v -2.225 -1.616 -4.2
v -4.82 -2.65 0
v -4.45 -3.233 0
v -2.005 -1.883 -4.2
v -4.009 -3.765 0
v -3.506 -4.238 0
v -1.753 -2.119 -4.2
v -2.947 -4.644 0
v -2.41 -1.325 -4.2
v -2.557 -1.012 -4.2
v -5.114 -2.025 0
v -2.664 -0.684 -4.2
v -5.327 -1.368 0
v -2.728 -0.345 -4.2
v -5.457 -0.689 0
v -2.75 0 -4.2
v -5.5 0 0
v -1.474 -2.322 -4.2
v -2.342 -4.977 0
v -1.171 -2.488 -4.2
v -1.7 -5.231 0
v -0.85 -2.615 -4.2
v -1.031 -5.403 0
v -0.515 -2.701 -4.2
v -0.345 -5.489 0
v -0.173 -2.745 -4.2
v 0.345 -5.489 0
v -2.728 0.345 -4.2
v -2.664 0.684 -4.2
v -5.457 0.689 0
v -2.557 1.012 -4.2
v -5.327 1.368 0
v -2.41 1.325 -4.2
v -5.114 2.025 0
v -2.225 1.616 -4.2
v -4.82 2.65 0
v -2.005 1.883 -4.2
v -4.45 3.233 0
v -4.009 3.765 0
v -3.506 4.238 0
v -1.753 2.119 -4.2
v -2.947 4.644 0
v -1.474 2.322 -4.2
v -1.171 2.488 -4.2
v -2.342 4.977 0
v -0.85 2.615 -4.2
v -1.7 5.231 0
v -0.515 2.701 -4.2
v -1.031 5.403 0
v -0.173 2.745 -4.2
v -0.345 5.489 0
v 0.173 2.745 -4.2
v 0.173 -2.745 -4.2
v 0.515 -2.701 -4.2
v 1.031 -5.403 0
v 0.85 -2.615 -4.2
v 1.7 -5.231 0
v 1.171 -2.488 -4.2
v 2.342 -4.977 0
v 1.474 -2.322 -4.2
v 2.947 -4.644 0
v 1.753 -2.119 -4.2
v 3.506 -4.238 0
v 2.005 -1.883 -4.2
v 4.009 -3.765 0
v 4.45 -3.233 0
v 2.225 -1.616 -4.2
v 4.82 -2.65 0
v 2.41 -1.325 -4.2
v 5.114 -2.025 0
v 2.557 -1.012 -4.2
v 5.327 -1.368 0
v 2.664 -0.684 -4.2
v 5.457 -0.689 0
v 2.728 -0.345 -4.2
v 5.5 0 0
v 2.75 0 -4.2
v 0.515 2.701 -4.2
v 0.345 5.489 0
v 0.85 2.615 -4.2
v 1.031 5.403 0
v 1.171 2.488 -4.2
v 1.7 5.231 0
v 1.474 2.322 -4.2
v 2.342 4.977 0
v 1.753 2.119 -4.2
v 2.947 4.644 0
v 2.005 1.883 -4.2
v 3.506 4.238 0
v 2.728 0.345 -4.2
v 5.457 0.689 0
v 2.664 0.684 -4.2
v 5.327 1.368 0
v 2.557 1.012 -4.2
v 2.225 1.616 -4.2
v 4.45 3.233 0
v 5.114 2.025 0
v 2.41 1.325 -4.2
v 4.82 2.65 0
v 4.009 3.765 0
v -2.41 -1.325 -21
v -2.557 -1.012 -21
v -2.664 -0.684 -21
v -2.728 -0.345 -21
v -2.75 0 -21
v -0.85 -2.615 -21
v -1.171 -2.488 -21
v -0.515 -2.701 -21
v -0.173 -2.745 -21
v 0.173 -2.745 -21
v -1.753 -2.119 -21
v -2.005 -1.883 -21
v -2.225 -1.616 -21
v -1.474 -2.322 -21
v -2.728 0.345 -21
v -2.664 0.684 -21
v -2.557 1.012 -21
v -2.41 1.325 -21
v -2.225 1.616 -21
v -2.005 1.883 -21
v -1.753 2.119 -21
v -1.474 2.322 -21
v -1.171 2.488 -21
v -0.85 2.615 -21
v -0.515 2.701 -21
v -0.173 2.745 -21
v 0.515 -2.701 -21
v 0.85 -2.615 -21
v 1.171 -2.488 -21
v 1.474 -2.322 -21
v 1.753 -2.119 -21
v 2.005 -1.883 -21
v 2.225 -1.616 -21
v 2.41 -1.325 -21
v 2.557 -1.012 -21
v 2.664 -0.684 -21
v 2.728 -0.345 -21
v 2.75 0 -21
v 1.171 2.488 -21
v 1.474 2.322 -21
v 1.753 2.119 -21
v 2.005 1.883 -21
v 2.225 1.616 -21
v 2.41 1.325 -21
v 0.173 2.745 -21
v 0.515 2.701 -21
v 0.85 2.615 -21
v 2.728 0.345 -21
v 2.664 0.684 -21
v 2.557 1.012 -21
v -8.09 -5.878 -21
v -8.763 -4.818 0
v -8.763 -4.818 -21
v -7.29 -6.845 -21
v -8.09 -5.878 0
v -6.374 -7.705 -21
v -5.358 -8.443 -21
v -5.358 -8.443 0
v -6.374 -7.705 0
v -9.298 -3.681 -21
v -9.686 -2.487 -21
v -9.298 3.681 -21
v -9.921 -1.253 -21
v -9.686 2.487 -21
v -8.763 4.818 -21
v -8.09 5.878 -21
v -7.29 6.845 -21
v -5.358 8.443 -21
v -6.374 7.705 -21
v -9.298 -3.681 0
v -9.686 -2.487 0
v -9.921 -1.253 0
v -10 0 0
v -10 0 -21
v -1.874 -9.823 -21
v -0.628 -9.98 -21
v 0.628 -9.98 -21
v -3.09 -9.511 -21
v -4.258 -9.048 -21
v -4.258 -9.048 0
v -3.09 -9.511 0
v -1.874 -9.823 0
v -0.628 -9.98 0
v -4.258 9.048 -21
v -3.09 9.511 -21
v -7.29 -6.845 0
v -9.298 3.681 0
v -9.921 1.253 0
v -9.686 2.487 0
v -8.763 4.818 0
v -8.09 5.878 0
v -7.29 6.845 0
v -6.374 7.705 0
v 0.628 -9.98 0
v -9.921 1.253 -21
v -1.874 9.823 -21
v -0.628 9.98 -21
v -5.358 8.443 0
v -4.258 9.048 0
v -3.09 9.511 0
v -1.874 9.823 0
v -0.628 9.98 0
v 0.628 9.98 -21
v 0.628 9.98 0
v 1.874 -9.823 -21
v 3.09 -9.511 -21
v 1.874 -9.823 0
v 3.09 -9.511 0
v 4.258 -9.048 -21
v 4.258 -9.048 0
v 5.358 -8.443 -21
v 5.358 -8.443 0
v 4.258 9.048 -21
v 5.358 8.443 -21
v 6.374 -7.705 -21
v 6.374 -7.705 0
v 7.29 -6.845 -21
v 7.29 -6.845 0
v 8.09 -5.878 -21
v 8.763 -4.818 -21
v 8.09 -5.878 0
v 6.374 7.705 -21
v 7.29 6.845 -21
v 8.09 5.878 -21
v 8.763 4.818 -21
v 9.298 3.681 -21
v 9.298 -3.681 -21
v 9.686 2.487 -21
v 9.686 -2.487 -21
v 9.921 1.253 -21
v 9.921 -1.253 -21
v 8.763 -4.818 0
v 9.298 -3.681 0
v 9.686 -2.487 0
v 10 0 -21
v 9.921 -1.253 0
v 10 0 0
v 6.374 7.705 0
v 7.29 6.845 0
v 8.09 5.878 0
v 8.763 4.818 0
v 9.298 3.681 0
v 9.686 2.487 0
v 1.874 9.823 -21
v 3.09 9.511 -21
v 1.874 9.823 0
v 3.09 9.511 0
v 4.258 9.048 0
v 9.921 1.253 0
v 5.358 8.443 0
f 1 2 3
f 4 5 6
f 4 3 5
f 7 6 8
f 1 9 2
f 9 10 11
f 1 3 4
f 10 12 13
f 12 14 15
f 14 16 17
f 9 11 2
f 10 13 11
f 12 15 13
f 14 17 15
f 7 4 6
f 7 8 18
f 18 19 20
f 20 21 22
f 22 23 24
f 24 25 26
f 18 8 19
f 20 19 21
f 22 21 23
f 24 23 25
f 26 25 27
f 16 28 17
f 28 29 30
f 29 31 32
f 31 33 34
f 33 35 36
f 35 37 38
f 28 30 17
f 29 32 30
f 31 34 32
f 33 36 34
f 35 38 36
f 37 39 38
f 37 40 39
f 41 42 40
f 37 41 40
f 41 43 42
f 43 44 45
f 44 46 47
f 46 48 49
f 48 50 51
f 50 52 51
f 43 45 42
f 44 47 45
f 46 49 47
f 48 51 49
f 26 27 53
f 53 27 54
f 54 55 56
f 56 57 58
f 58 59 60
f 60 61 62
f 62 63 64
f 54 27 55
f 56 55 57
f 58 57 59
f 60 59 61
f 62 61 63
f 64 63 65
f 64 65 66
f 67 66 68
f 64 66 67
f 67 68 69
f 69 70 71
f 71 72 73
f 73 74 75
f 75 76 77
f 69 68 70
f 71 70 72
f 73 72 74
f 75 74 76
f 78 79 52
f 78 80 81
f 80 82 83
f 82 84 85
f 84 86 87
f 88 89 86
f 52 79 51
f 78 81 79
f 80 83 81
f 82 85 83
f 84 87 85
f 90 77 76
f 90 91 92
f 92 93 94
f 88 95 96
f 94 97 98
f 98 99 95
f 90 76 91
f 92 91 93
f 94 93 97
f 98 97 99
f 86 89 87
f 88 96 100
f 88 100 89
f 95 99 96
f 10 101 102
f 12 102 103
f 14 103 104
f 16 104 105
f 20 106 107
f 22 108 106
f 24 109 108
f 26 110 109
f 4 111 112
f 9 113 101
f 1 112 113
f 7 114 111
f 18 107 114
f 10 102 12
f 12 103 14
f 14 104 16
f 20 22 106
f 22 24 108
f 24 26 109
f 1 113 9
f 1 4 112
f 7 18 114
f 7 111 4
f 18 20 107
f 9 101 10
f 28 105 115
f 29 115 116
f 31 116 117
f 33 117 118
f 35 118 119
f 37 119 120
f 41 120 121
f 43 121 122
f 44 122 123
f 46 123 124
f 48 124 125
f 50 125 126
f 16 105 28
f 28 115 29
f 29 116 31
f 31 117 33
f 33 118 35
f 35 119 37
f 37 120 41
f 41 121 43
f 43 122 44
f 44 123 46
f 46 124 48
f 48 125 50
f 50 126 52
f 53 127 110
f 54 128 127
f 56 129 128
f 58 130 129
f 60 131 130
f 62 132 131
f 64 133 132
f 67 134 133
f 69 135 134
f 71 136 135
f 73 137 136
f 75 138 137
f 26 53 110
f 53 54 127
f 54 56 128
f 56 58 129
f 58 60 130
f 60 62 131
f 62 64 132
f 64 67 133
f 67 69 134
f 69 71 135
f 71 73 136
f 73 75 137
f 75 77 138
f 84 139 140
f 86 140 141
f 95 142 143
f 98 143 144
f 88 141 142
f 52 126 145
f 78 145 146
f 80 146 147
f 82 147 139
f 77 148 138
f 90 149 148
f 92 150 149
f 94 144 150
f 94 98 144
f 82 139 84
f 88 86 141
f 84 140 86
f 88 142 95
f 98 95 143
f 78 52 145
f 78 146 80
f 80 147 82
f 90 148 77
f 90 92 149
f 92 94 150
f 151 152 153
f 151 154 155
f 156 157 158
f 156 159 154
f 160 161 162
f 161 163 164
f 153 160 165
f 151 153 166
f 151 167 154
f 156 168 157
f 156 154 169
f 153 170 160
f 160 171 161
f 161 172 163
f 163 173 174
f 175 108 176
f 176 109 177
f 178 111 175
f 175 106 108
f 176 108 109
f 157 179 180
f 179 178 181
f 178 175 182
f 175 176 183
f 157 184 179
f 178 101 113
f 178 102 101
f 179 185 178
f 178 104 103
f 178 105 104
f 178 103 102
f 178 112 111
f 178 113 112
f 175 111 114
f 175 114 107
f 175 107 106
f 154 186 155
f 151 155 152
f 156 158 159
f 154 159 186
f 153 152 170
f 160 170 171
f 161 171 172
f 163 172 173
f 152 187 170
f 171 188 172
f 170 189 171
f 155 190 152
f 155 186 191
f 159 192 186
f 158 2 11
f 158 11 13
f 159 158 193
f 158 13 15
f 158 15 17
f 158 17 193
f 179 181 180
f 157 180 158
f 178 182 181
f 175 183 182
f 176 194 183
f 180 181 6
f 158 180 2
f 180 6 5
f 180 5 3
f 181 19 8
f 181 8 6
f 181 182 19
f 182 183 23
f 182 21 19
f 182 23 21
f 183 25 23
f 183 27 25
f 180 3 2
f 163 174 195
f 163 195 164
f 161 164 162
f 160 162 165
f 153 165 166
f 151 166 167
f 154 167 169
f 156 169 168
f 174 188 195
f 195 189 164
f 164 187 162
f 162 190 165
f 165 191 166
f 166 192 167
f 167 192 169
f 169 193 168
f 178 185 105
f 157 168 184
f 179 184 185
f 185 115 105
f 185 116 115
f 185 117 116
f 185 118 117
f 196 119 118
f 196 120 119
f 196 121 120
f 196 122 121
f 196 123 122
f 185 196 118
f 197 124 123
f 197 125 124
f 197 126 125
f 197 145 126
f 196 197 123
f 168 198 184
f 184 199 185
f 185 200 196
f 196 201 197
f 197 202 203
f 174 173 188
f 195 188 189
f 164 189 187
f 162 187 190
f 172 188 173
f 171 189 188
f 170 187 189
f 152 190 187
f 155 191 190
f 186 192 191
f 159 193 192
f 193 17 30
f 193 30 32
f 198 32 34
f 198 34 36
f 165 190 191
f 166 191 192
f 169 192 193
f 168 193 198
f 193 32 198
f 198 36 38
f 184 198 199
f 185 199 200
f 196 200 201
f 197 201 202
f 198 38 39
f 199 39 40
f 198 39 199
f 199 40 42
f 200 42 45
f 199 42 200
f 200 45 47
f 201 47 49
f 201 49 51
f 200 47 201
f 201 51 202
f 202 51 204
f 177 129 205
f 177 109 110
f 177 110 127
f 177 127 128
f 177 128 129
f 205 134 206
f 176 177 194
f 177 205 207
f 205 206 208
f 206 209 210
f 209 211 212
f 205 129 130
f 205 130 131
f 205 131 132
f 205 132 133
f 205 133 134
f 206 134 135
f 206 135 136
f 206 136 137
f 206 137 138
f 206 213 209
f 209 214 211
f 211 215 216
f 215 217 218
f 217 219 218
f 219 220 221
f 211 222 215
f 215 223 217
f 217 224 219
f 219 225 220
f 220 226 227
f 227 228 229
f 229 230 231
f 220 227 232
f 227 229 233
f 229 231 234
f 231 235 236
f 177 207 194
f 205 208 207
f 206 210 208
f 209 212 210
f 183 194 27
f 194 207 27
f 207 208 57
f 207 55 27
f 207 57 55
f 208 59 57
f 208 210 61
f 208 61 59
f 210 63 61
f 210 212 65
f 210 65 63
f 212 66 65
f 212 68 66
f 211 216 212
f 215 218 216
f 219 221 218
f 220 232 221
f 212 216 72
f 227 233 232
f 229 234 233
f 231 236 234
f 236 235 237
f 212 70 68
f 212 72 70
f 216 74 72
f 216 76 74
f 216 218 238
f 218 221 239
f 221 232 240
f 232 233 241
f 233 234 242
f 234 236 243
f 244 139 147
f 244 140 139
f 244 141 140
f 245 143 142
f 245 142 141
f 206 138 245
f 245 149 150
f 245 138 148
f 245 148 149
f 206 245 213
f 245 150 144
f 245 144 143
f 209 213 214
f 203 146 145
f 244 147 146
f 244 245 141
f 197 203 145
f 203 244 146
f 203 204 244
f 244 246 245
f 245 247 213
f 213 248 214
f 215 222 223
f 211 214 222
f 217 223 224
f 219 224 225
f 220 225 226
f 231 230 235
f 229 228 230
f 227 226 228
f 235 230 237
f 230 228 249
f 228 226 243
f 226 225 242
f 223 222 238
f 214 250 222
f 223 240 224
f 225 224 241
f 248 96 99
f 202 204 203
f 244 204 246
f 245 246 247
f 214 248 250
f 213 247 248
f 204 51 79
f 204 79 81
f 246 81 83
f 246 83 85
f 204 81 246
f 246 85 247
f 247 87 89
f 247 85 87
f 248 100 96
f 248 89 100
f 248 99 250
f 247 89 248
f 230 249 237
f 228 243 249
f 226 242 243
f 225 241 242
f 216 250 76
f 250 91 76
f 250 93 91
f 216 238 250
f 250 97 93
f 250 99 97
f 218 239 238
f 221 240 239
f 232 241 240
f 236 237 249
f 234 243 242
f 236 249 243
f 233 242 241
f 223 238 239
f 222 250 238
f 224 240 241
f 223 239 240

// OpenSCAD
$fn = 50;

difference() {
	union() {
		translate(v = [0, 0, -21.0]) {
			cylinder(h = 21, r = 10.0);
		}
	}
	union() {
		translate(v = [0, 0, 0]) {
			rotate(a = [0, 0, 0]) {
				difference() {
					union() {
						translate(v = [0, 0, -24.0]) {
							cylinder(h = 24, r = 2.25);
						}
						translate(v = [0, 0, -4.2]) {
							cylinder(h = 4.2, r1 = 2.75, r2 = 5.5);
						}
						translate(v = [0, 0, -24.0]) {
							cylinder(h = 24, r = 2.75);
						}
						translate(v = [0, 0, -24.0]) {
							cylinder(h = 24, r = 2.25);
						}
					}
					union();
				}
			}
		}
	}
}
